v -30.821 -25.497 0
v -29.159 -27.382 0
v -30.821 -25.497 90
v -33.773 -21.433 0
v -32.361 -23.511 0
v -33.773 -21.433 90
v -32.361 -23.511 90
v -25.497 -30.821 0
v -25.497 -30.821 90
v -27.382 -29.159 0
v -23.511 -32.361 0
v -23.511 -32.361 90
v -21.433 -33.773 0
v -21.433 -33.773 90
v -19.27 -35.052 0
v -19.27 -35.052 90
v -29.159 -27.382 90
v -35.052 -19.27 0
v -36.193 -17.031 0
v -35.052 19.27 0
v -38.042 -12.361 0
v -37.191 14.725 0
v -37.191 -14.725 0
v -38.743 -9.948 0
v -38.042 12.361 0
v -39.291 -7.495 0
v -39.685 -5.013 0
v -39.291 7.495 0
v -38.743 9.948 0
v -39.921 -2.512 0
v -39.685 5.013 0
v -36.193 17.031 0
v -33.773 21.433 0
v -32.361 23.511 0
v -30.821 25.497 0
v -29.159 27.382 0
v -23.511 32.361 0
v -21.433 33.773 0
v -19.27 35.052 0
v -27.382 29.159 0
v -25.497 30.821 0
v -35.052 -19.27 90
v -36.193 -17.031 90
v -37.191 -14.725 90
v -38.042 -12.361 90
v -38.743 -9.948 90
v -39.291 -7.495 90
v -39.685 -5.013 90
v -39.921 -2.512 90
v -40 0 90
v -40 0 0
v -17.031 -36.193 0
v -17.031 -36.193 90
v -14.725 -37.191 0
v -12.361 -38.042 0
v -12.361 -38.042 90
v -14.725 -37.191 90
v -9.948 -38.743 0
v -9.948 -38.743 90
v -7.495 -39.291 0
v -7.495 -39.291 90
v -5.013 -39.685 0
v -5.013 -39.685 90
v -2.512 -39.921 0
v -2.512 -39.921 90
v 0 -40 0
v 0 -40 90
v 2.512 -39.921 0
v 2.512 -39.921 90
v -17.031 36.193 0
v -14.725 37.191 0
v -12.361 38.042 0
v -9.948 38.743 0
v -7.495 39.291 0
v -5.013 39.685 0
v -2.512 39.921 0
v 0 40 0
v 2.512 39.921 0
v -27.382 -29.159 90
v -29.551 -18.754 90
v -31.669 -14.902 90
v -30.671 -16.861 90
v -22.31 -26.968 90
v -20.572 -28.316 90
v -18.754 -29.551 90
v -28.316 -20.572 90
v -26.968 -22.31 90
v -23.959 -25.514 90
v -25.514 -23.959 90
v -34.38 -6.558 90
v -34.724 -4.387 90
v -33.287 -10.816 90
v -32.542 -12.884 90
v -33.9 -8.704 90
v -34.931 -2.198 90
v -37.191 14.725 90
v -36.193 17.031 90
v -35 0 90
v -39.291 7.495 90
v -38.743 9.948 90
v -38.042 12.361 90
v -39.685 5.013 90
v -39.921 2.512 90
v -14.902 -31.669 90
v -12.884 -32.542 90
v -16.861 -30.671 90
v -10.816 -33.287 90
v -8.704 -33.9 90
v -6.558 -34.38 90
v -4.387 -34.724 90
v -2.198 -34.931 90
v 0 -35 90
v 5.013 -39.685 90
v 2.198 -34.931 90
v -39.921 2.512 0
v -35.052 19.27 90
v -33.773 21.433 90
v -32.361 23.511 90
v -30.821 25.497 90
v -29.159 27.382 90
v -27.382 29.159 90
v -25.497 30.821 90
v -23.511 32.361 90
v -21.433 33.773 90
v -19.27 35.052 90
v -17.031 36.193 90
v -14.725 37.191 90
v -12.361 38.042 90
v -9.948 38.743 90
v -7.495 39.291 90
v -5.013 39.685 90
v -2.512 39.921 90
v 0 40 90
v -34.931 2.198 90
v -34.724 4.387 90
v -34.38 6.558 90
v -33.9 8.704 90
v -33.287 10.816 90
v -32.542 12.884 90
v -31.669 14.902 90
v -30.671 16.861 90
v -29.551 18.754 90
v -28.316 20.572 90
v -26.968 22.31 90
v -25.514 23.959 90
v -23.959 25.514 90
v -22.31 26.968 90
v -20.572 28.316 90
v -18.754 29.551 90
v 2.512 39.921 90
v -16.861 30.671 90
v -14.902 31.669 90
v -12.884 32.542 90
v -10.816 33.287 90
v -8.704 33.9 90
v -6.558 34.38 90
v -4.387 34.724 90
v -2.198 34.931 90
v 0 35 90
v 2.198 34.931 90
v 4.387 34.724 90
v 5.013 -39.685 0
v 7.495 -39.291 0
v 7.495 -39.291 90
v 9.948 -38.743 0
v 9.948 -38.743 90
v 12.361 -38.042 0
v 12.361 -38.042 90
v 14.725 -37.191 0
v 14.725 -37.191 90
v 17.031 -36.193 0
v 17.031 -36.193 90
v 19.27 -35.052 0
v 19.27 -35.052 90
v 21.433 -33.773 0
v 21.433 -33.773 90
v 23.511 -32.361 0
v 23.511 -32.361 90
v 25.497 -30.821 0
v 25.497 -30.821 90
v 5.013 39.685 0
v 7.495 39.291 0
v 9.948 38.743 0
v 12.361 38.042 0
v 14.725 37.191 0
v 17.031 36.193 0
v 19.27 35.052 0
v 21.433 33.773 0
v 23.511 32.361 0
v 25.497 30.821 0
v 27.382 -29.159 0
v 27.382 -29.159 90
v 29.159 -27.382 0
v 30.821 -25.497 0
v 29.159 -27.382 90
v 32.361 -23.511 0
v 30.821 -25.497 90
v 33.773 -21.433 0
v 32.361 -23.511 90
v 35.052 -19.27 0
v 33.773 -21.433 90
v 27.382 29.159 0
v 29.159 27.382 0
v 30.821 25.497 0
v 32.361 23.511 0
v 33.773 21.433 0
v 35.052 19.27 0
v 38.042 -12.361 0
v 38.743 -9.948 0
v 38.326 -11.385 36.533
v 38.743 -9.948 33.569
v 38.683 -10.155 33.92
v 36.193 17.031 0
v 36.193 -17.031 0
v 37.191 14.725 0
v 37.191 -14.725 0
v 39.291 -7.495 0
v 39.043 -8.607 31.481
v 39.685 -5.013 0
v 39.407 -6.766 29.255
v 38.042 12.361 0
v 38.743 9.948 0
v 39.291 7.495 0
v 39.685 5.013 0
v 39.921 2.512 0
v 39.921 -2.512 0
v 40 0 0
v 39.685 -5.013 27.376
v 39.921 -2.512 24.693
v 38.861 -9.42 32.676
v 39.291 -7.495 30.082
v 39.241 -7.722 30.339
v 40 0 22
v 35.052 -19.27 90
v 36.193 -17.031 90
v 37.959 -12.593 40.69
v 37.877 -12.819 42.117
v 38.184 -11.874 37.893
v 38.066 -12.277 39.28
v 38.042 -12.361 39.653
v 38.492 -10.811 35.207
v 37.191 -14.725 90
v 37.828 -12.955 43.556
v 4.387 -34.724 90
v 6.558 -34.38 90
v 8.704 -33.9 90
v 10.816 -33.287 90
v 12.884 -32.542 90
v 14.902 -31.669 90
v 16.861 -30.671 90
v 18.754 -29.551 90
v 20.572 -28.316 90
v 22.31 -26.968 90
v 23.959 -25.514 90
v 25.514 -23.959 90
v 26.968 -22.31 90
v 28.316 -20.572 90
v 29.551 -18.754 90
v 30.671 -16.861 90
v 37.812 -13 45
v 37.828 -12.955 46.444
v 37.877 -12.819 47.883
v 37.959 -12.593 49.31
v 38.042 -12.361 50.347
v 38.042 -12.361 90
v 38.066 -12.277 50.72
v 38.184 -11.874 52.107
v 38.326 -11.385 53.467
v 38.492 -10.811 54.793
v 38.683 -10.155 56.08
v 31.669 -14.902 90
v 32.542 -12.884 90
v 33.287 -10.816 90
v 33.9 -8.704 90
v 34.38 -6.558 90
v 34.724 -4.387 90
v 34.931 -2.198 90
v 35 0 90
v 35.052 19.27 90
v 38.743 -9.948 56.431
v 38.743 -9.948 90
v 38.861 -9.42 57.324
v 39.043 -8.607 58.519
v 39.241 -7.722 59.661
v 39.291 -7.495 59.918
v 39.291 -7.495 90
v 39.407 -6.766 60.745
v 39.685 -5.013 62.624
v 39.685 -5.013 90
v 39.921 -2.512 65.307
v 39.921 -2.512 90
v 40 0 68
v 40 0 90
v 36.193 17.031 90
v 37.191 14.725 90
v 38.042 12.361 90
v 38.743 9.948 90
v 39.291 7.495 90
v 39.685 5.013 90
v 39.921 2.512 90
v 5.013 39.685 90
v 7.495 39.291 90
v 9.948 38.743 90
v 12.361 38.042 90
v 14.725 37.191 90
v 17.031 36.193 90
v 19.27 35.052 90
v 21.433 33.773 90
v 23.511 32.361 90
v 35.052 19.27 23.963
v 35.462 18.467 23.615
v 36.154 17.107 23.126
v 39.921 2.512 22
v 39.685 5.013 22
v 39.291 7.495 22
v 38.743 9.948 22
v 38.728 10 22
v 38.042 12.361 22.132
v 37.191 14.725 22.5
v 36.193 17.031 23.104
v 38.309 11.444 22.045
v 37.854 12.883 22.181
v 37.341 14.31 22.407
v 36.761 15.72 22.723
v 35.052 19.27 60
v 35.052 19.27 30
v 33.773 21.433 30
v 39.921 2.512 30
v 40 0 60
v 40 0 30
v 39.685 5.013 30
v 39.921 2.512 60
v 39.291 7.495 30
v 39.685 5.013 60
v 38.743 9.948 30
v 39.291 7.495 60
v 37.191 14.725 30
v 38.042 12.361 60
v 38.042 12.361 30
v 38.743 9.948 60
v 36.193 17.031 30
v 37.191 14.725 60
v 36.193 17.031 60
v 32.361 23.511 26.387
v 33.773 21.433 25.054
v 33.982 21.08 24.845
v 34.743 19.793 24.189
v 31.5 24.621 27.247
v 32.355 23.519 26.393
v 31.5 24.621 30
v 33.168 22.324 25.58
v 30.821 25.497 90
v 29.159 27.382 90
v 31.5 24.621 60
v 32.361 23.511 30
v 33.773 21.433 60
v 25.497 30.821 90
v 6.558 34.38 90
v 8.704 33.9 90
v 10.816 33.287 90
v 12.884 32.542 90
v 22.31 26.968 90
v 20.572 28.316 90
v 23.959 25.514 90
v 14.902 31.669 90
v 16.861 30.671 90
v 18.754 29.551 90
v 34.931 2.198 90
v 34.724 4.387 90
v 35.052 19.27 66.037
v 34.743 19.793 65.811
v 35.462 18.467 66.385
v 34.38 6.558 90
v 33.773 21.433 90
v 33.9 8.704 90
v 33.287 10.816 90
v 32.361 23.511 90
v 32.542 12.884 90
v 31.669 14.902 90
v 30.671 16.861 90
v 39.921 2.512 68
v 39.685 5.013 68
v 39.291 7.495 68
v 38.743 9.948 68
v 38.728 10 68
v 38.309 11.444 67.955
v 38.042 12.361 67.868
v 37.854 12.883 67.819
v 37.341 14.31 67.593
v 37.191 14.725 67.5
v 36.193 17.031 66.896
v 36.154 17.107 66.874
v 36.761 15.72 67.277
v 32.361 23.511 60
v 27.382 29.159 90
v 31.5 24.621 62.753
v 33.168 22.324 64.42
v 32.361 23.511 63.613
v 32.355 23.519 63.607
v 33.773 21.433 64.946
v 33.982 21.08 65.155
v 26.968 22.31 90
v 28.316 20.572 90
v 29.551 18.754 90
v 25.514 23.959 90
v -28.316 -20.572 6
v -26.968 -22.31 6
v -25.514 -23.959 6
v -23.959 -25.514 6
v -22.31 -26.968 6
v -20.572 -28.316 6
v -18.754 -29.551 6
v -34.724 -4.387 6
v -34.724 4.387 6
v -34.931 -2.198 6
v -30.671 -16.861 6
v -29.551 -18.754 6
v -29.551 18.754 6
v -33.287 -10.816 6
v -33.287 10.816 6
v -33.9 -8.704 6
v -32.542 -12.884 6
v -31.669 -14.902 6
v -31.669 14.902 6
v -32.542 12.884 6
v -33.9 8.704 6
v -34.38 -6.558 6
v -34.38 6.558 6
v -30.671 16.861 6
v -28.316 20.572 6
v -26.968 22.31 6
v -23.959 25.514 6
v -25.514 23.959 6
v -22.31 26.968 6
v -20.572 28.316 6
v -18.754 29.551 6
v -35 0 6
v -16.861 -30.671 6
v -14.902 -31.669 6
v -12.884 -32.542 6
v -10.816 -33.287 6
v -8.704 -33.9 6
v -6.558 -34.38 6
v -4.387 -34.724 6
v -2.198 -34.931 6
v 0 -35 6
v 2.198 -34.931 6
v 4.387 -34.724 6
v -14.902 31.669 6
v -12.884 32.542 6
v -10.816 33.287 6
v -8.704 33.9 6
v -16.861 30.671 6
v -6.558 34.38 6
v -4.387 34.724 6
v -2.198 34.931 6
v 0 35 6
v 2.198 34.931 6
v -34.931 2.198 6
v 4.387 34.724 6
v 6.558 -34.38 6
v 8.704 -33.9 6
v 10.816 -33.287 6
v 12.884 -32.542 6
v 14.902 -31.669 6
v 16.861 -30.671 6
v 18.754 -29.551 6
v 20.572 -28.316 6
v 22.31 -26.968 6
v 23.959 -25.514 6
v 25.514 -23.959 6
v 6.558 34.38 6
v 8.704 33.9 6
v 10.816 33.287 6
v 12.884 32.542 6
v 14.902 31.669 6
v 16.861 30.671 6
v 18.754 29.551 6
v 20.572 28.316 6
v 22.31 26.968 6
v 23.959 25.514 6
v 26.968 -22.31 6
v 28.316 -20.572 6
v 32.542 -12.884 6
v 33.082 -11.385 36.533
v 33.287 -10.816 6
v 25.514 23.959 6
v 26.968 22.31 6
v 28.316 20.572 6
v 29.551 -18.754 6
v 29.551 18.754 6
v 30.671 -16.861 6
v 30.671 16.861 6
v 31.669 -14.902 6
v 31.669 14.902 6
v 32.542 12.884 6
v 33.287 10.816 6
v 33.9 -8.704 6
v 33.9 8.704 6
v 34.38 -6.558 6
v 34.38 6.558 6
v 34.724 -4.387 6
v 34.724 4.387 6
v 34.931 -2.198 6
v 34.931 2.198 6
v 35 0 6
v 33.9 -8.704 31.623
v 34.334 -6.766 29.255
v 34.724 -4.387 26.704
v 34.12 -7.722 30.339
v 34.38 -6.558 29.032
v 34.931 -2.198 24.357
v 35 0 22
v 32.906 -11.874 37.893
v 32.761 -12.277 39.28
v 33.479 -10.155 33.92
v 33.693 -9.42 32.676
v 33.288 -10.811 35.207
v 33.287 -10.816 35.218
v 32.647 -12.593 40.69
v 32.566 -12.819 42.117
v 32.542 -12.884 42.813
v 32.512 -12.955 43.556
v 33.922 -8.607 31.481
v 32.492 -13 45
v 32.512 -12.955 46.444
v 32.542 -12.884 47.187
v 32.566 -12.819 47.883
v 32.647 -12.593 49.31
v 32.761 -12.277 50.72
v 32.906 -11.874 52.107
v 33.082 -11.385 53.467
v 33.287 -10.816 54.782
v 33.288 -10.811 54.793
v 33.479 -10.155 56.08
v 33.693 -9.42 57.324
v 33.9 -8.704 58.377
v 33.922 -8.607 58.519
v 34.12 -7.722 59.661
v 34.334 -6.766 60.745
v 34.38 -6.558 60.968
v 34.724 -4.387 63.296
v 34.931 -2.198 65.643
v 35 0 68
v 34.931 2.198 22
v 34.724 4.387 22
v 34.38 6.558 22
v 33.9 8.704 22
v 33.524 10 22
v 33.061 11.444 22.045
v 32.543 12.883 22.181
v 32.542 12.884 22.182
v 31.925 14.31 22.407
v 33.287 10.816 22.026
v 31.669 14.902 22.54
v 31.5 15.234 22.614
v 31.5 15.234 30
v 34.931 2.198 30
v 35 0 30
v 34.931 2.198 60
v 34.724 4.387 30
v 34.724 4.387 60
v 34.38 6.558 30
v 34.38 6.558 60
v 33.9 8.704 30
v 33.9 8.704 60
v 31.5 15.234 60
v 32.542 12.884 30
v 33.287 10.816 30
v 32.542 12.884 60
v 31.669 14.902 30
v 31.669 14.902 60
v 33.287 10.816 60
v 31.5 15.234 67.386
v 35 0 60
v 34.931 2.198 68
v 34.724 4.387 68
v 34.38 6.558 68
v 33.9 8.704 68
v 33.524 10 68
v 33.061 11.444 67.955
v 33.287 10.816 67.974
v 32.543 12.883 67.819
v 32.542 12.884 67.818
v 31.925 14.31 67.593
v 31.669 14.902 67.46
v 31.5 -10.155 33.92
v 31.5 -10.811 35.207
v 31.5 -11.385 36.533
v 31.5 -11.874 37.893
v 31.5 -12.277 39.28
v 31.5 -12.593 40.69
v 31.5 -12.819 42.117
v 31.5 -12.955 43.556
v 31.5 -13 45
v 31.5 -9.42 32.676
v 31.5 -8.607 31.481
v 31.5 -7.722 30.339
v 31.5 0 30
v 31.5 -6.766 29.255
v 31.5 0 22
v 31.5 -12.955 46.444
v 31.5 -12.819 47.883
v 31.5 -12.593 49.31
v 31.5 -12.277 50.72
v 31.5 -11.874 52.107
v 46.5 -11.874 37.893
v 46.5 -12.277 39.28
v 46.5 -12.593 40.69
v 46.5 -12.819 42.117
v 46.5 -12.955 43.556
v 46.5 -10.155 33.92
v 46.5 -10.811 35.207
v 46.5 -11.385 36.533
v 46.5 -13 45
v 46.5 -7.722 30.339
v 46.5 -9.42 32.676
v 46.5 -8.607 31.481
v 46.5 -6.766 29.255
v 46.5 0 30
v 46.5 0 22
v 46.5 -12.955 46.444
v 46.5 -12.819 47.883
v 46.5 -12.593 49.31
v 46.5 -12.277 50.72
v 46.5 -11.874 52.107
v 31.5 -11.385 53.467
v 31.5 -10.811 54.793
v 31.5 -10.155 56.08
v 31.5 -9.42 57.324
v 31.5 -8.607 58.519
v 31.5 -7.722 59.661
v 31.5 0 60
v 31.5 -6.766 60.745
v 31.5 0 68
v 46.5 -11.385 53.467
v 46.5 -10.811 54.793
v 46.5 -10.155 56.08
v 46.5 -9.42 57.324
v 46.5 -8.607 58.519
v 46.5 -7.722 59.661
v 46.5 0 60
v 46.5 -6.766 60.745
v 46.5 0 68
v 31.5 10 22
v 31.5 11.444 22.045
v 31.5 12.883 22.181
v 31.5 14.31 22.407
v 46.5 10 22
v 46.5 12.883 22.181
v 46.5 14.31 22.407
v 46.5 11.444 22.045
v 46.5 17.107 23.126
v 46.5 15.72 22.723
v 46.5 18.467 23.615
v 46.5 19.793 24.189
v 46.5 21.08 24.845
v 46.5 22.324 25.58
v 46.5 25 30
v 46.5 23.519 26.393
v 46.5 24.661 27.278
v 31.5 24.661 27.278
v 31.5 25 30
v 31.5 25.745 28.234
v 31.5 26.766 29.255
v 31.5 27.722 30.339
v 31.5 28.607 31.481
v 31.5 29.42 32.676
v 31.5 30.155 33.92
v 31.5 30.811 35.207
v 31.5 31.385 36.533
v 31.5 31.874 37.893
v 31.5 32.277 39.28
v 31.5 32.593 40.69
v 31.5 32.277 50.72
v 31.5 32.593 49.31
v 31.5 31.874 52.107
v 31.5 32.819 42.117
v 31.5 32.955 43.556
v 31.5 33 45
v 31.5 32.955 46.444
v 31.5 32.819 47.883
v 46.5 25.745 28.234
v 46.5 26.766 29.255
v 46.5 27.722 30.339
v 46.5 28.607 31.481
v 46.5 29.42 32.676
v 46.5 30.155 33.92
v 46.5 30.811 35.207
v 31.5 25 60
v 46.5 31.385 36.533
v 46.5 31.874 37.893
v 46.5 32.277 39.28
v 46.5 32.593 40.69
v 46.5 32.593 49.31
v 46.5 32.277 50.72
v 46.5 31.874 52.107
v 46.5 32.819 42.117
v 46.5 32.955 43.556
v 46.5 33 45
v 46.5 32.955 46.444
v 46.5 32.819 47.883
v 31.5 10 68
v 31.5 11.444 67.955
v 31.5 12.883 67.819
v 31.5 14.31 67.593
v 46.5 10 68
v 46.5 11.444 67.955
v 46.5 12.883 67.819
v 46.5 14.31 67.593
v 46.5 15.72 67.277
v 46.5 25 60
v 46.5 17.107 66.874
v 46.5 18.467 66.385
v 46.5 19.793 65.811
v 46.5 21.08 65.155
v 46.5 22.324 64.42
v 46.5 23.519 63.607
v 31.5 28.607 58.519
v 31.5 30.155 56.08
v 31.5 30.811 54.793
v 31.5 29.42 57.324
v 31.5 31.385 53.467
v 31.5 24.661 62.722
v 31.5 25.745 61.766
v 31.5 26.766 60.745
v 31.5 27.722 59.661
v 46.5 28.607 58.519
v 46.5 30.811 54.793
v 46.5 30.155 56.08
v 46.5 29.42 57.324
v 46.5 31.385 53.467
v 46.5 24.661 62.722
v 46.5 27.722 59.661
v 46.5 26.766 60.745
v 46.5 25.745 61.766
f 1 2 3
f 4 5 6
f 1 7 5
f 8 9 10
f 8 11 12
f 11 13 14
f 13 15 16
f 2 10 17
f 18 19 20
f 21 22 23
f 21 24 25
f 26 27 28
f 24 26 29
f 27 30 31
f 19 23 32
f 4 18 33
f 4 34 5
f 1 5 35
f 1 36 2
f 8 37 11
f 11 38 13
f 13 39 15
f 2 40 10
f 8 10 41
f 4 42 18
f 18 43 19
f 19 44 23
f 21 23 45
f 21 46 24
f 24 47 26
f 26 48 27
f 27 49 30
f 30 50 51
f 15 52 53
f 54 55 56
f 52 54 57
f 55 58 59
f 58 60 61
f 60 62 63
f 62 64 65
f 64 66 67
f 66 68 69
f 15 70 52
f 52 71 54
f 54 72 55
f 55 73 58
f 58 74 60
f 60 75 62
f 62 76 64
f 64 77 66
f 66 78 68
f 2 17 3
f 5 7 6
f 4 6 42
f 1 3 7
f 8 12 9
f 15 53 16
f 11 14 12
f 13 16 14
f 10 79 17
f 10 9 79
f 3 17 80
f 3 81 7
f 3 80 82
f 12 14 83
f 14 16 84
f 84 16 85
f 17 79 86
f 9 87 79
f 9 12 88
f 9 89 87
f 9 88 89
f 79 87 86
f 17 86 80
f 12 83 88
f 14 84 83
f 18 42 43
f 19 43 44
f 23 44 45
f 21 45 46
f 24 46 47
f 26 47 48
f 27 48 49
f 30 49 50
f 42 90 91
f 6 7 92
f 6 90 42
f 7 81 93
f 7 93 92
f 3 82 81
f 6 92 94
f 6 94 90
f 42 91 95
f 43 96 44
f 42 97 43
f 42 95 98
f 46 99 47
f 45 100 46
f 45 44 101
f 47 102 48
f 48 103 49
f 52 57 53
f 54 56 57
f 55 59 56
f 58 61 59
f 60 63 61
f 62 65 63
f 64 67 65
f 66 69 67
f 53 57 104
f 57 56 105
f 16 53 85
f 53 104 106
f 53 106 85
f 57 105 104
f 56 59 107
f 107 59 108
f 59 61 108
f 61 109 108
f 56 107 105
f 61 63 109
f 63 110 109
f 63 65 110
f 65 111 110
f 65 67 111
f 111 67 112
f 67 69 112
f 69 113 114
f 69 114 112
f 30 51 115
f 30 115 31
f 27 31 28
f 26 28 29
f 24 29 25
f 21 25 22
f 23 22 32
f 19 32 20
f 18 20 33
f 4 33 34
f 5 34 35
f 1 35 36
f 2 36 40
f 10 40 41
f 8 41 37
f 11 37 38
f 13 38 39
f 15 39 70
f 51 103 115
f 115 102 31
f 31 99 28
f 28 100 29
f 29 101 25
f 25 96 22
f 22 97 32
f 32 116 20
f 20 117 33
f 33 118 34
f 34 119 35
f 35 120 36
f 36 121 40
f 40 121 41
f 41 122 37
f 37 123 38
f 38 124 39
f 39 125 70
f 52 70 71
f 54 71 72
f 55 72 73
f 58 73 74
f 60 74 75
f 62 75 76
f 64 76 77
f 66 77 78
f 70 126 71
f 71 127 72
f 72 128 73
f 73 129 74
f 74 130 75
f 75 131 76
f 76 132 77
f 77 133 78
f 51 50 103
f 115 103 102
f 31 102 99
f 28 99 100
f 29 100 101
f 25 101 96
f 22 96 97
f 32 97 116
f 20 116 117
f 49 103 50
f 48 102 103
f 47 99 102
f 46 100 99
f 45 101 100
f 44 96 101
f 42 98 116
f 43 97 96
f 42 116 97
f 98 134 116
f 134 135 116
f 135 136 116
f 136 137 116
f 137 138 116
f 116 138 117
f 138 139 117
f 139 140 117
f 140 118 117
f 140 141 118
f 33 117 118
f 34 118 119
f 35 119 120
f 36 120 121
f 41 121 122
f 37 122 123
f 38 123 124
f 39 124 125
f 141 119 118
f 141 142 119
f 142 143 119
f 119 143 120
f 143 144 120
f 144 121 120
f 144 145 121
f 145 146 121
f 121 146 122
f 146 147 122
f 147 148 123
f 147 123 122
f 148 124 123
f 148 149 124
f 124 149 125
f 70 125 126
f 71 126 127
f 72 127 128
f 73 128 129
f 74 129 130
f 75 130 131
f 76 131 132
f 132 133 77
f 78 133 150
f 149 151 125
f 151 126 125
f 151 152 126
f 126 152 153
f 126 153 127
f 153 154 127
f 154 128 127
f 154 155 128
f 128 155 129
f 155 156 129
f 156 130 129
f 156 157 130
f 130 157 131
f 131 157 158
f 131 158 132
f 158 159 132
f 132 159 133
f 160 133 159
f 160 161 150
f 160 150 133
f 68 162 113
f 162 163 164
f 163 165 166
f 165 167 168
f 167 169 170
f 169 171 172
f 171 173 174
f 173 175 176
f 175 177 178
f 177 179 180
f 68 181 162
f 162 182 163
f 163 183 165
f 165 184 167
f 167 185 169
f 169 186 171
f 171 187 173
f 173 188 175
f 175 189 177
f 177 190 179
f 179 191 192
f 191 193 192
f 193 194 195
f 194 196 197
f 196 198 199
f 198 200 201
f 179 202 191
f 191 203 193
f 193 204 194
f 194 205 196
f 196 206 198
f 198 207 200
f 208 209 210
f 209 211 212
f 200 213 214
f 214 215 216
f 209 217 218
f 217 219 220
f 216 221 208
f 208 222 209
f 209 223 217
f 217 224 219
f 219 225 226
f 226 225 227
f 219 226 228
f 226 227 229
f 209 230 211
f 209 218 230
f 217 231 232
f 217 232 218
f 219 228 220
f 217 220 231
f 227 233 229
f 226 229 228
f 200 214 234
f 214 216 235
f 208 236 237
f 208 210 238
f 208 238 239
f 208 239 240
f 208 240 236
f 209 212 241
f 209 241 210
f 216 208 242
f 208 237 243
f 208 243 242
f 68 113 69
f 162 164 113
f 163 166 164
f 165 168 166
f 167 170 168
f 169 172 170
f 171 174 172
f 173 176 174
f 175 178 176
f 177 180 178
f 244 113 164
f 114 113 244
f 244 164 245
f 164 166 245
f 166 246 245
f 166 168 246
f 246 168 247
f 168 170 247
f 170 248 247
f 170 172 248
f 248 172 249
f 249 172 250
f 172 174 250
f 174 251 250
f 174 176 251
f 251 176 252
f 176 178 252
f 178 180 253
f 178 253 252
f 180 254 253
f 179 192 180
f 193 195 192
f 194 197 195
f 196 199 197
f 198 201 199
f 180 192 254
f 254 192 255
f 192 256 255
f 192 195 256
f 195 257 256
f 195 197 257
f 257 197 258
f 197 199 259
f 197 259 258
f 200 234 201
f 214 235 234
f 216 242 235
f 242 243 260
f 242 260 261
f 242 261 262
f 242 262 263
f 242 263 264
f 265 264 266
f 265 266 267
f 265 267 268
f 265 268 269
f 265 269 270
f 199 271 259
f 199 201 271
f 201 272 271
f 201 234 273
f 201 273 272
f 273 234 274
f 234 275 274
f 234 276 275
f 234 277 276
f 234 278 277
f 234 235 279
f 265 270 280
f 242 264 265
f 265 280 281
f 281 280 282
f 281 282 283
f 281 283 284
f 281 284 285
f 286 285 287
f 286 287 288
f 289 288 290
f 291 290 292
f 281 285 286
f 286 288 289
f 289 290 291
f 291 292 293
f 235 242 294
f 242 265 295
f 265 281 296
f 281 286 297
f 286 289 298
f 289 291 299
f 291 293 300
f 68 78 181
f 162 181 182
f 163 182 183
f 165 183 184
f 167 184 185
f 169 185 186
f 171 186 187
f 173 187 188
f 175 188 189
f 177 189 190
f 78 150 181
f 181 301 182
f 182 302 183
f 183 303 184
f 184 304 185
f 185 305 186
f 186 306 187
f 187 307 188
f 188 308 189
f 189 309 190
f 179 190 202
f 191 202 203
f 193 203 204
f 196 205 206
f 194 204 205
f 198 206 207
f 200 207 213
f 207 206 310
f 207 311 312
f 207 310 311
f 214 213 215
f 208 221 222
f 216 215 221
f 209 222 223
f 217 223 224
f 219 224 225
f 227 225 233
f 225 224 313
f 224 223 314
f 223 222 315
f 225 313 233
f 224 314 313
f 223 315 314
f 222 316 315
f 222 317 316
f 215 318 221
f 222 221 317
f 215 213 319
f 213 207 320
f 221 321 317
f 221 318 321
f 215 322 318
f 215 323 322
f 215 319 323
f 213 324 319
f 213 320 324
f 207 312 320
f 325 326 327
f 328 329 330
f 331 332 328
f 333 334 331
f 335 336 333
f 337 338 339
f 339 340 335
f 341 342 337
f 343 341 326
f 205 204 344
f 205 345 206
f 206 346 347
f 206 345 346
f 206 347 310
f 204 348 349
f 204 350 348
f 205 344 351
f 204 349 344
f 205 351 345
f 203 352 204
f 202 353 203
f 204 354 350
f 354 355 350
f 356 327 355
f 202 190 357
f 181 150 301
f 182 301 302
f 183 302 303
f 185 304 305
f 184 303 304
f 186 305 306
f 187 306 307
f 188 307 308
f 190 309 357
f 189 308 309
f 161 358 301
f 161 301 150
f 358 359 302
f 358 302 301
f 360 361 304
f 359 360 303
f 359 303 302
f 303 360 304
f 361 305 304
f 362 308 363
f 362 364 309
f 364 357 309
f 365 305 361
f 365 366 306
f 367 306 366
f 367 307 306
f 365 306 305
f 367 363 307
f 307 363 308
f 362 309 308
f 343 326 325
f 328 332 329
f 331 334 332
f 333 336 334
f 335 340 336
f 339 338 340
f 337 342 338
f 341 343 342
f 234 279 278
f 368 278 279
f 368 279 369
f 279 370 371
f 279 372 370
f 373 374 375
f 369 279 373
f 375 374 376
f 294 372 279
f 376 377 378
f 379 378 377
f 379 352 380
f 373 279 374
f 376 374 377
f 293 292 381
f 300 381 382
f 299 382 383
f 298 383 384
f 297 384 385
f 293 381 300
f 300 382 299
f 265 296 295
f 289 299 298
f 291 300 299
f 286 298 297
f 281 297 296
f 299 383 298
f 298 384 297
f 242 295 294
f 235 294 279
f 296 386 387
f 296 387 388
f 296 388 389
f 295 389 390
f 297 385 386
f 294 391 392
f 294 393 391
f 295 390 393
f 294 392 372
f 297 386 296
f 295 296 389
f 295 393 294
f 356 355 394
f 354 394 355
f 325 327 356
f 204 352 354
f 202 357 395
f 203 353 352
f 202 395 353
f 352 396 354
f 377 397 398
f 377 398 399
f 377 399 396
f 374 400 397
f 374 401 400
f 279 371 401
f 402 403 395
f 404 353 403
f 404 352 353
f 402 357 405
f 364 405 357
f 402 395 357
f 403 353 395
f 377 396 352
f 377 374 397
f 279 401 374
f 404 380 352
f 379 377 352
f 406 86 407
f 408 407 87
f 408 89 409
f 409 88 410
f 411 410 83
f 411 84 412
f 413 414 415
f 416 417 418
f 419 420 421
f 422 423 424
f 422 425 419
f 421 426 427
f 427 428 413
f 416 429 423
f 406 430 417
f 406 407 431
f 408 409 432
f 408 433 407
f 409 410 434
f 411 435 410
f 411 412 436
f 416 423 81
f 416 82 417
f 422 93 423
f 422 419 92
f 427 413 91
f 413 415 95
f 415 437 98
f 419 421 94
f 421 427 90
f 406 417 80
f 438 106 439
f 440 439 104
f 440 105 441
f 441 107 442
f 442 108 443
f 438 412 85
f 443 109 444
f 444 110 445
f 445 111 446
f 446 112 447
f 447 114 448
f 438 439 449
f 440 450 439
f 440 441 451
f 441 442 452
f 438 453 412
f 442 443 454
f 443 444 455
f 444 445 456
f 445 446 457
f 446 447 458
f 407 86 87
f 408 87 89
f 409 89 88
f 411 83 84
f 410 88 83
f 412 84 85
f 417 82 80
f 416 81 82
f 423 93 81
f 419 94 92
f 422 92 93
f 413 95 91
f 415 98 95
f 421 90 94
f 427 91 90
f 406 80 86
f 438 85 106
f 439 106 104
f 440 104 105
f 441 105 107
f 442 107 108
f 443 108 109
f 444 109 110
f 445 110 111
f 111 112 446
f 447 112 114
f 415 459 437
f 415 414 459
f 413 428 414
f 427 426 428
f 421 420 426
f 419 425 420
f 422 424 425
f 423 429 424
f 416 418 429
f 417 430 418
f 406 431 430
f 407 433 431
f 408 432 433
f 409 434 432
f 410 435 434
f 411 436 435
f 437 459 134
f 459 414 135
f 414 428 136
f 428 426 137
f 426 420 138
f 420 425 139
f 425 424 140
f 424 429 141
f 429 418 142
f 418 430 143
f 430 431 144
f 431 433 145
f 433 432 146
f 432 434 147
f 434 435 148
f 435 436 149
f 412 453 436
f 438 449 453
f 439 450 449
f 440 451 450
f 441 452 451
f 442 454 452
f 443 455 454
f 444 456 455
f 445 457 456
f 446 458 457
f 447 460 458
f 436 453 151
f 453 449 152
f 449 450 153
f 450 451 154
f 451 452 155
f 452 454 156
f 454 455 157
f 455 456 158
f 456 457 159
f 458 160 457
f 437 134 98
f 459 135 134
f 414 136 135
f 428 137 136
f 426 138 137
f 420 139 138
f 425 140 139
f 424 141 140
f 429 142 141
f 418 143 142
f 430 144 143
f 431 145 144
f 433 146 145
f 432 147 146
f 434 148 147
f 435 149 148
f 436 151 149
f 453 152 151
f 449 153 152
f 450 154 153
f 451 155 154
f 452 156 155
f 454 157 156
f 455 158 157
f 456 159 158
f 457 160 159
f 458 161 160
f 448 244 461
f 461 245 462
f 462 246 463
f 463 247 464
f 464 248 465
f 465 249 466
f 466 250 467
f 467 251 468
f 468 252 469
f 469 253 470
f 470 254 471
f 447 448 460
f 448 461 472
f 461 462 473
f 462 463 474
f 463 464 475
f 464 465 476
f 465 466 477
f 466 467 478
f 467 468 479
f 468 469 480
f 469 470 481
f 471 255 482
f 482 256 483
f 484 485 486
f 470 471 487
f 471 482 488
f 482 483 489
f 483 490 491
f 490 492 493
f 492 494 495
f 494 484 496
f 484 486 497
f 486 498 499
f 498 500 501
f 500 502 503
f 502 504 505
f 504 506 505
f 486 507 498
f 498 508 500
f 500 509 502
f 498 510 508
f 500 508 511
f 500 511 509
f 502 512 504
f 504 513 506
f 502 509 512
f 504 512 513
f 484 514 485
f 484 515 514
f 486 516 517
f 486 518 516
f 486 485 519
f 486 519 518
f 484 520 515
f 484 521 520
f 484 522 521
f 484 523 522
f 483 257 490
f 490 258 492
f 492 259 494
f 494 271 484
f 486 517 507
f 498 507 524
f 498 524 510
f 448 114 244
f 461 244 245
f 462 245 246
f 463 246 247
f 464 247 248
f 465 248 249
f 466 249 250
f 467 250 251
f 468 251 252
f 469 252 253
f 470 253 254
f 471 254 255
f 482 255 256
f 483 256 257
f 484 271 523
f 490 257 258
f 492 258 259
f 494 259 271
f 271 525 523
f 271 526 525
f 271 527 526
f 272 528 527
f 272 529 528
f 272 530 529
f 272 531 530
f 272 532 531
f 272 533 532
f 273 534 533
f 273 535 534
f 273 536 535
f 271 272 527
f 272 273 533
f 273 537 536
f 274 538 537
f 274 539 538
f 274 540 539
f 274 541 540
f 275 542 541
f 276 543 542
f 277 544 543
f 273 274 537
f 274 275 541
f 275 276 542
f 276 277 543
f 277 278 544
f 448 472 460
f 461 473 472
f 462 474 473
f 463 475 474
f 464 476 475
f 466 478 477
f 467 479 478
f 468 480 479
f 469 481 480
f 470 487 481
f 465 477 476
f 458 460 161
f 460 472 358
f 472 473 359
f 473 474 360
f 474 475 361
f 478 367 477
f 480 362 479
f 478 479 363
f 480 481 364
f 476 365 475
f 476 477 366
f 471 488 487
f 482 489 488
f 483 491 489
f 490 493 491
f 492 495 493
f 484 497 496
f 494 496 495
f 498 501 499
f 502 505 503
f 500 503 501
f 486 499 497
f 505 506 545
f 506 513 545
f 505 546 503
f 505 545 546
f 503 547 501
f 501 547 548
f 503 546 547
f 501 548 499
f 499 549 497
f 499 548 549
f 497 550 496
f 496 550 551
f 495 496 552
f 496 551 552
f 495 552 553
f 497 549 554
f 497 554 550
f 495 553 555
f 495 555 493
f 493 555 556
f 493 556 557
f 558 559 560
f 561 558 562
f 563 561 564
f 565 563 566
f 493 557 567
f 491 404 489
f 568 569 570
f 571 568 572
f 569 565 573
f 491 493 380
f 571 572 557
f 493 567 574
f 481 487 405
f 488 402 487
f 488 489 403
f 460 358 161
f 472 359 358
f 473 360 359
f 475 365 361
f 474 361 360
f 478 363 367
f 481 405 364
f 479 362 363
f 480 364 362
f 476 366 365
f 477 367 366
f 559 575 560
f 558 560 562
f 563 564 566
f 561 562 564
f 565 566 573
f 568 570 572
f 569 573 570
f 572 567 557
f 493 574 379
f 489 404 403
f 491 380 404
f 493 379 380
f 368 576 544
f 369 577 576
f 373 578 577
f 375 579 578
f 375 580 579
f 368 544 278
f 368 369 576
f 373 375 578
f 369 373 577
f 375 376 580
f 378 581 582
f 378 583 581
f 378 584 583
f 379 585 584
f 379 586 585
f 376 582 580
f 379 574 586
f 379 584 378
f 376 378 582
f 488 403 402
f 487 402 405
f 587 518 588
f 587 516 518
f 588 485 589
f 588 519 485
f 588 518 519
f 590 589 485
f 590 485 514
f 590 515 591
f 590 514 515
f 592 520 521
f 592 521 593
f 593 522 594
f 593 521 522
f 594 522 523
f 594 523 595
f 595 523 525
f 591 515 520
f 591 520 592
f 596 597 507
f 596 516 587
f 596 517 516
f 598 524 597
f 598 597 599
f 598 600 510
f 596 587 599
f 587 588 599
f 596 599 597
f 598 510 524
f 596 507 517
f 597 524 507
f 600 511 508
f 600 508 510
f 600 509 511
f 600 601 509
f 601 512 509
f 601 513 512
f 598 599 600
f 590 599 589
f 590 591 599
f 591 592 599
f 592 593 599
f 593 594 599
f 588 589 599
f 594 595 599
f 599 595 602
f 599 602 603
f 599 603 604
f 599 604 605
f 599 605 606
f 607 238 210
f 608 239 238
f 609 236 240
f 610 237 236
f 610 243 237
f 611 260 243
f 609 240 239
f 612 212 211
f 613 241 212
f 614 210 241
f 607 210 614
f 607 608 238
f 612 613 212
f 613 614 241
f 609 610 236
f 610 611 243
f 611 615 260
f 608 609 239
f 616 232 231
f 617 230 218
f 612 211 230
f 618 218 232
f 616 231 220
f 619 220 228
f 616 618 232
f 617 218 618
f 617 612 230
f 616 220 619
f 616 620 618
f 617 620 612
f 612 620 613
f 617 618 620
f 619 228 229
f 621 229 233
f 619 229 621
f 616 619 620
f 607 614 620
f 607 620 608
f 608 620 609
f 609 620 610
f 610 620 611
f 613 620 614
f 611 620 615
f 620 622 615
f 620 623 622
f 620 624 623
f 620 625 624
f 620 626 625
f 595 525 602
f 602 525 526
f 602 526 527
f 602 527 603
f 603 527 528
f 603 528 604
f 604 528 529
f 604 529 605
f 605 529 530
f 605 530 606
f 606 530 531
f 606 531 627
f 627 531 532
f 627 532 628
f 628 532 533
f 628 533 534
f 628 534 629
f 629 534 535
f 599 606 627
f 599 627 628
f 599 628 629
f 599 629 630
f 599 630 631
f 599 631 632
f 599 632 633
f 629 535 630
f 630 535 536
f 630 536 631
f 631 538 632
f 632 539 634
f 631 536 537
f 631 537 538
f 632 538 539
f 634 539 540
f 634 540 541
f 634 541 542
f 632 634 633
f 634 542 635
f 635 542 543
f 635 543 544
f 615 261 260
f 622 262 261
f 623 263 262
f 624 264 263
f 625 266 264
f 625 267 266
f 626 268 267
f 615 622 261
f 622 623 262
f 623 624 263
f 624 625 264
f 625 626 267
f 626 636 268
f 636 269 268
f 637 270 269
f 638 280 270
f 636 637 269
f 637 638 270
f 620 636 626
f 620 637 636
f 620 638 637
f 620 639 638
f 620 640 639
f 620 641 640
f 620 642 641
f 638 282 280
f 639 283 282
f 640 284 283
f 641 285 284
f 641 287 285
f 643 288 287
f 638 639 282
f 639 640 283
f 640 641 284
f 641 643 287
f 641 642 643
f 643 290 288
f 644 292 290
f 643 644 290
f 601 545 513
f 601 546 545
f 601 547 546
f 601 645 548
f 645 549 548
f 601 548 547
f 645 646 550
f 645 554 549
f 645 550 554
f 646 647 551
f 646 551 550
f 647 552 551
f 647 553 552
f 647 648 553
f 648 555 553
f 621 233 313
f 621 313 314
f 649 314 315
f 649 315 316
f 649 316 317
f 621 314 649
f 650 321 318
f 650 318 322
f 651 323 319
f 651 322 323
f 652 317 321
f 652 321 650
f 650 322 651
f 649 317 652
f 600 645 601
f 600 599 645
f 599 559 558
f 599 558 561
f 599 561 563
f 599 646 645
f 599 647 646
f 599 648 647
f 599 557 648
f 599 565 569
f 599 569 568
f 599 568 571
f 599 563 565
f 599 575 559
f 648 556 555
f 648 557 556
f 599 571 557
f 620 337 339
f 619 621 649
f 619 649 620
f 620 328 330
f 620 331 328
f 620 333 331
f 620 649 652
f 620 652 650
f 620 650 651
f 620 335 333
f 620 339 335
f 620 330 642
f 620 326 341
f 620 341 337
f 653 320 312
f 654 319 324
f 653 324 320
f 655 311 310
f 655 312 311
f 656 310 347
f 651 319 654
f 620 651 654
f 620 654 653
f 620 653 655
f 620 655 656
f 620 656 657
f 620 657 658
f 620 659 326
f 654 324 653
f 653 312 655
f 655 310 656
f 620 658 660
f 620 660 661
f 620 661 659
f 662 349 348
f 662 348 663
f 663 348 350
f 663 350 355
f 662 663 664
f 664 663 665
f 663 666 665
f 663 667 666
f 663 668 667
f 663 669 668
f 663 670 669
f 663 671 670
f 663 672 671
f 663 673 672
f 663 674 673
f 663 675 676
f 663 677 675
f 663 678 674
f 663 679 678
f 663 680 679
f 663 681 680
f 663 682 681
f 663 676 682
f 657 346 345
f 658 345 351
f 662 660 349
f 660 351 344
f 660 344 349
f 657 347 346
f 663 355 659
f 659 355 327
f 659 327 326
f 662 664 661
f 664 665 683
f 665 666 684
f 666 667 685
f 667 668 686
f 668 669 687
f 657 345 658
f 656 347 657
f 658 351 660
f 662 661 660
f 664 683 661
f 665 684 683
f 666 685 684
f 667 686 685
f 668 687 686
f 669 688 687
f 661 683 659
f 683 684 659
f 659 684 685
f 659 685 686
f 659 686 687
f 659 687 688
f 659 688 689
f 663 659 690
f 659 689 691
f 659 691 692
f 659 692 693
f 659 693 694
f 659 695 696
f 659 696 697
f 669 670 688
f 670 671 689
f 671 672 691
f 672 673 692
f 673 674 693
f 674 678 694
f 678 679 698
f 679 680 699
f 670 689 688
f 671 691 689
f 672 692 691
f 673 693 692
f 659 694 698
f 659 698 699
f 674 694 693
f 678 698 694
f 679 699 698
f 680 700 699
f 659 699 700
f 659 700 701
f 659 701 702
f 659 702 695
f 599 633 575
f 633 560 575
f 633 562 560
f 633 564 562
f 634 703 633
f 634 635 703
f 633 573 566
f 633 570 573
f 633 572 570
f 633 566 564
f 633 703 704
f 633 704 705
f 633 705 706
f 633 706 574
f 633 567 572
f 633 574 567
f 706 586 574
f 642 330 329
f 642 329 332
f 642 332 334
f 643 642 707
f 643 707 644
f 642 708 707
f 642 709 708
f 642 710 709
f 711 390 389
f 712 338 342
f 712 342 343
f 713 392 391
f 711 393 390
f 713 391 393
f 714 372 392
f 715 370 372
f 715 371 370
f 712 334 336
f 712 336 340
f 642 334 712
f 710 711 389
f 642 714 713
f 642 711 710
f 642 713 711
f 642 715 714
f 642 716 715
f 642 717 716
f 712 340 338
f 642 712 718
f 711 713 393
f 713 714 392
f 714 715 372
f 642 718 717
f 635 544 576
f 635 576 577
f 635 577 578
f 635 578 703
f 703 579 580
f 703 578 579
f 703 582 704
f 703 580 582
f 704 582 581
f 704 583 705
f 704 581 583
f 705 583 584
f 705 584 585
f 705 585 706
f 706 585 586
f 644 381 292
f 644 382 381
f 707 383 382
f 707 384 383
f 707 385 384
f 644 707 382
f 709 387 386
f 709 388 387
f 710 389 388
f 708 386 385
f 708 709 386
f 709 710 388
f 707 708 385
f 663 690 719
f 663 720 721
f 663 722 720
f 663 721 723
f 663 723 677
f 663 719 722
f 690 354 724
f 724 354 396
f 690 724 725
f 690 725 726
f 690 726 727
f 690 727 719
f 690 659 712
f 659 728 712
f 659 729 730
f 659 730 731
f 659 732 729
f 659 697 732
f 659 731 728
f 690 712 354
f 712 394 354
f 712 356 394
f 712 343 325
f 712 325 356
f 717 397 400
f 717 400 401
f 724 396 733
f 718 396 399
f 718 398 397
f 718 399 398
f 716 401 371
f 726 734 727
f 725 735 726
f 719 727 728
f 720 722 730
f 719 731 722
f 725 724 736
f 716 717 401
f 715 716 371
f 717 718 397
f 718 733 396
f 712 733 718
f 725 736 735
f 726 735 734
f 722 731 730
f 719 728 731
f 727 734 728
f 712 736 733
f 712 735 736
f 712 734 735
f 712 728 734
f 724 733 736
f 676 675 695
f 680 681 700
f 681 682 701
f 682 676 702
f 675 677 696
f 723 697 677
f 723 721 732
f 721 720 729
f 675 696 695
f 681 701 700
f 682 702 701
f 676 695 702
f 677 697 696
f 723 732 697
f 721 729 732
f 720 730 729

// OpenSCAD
$fn = 100;

// --- 寸法定義 ---
mug_outer_r = 80 / 2;   // 外径 80mm -> 半径 40mm
mug_inner_r = 70 / 2;   // 内径 70mm -> 半径 35mm (肉厚 5mm)
mug_height = 90;
mug_bottom_thick = 6;

handle_inner_w = 25;    // 取っ手内側の空間 幅 25mm
handle_inner_h = 30;    // 取っ手内側の空間 高さ 30mm
handle_thickness = 8;   // 取っ手自体の肉厚
handle_breadth = 15;    // 取っ手の厚み（正面から見た時の幅）

union() {
    // 1. 本体 (Body)
    difference() {
        // 外側の円筒
        cylinder(h=mug_height, r=mug_outer_r);
        
        // 内側の中空化 (底面 6mm を残す)
        translate([0, 0, mug_bottom_thick])
            cylinder(h=mug_height, r=mug_inner_r);
    }

    // 2. 取っ手 (Handle)
    // マグの +X 軸方向の側面 (x=40) に設置。高さ方向の中央に配置。
    // 確実に union されるよう、本体へ 1mm めり込ませる
    translate([mug_outer_r - 1, 0, mug_height / 2])
    rotate([90, 0, 90]) // 2D 形状を YZ 平面に立てて X 軸方向に押し出す準備
    linear_extrude(height=handle_breadth, center=true) {
        difference() {
            // 外形: D字形状 (本体側が直線、外側が半径 R の半円)
            // 外側先端を (内側幅 25 + 肉厚 8 = 33mm) にするため
            // 半径 R = (内側高/2 + 肉厚) = 23mm の中心を x = 10 に配置
            hull() {
                // 本体側の直線接合部
                translate([0, -(handle_inner_h/2 + handle_thickness)])
                    square([1, handle_inner_h + handle_thickness * 2]);
                
                // 外側の半円
                translate([handle_inner_w + handle_thickness - (handle_inner_h/2 + handle_thickness), 0])
                    circle(r = handle_inner_h/2 + handle_thickness);
            }
            
            // 内側の空間 (高さ 30mm × 幅 25mm)
            translate([0, -handle_inner_h/2])
                square([handle_inner_w, handle_inner_h]);
        }
    }
}
